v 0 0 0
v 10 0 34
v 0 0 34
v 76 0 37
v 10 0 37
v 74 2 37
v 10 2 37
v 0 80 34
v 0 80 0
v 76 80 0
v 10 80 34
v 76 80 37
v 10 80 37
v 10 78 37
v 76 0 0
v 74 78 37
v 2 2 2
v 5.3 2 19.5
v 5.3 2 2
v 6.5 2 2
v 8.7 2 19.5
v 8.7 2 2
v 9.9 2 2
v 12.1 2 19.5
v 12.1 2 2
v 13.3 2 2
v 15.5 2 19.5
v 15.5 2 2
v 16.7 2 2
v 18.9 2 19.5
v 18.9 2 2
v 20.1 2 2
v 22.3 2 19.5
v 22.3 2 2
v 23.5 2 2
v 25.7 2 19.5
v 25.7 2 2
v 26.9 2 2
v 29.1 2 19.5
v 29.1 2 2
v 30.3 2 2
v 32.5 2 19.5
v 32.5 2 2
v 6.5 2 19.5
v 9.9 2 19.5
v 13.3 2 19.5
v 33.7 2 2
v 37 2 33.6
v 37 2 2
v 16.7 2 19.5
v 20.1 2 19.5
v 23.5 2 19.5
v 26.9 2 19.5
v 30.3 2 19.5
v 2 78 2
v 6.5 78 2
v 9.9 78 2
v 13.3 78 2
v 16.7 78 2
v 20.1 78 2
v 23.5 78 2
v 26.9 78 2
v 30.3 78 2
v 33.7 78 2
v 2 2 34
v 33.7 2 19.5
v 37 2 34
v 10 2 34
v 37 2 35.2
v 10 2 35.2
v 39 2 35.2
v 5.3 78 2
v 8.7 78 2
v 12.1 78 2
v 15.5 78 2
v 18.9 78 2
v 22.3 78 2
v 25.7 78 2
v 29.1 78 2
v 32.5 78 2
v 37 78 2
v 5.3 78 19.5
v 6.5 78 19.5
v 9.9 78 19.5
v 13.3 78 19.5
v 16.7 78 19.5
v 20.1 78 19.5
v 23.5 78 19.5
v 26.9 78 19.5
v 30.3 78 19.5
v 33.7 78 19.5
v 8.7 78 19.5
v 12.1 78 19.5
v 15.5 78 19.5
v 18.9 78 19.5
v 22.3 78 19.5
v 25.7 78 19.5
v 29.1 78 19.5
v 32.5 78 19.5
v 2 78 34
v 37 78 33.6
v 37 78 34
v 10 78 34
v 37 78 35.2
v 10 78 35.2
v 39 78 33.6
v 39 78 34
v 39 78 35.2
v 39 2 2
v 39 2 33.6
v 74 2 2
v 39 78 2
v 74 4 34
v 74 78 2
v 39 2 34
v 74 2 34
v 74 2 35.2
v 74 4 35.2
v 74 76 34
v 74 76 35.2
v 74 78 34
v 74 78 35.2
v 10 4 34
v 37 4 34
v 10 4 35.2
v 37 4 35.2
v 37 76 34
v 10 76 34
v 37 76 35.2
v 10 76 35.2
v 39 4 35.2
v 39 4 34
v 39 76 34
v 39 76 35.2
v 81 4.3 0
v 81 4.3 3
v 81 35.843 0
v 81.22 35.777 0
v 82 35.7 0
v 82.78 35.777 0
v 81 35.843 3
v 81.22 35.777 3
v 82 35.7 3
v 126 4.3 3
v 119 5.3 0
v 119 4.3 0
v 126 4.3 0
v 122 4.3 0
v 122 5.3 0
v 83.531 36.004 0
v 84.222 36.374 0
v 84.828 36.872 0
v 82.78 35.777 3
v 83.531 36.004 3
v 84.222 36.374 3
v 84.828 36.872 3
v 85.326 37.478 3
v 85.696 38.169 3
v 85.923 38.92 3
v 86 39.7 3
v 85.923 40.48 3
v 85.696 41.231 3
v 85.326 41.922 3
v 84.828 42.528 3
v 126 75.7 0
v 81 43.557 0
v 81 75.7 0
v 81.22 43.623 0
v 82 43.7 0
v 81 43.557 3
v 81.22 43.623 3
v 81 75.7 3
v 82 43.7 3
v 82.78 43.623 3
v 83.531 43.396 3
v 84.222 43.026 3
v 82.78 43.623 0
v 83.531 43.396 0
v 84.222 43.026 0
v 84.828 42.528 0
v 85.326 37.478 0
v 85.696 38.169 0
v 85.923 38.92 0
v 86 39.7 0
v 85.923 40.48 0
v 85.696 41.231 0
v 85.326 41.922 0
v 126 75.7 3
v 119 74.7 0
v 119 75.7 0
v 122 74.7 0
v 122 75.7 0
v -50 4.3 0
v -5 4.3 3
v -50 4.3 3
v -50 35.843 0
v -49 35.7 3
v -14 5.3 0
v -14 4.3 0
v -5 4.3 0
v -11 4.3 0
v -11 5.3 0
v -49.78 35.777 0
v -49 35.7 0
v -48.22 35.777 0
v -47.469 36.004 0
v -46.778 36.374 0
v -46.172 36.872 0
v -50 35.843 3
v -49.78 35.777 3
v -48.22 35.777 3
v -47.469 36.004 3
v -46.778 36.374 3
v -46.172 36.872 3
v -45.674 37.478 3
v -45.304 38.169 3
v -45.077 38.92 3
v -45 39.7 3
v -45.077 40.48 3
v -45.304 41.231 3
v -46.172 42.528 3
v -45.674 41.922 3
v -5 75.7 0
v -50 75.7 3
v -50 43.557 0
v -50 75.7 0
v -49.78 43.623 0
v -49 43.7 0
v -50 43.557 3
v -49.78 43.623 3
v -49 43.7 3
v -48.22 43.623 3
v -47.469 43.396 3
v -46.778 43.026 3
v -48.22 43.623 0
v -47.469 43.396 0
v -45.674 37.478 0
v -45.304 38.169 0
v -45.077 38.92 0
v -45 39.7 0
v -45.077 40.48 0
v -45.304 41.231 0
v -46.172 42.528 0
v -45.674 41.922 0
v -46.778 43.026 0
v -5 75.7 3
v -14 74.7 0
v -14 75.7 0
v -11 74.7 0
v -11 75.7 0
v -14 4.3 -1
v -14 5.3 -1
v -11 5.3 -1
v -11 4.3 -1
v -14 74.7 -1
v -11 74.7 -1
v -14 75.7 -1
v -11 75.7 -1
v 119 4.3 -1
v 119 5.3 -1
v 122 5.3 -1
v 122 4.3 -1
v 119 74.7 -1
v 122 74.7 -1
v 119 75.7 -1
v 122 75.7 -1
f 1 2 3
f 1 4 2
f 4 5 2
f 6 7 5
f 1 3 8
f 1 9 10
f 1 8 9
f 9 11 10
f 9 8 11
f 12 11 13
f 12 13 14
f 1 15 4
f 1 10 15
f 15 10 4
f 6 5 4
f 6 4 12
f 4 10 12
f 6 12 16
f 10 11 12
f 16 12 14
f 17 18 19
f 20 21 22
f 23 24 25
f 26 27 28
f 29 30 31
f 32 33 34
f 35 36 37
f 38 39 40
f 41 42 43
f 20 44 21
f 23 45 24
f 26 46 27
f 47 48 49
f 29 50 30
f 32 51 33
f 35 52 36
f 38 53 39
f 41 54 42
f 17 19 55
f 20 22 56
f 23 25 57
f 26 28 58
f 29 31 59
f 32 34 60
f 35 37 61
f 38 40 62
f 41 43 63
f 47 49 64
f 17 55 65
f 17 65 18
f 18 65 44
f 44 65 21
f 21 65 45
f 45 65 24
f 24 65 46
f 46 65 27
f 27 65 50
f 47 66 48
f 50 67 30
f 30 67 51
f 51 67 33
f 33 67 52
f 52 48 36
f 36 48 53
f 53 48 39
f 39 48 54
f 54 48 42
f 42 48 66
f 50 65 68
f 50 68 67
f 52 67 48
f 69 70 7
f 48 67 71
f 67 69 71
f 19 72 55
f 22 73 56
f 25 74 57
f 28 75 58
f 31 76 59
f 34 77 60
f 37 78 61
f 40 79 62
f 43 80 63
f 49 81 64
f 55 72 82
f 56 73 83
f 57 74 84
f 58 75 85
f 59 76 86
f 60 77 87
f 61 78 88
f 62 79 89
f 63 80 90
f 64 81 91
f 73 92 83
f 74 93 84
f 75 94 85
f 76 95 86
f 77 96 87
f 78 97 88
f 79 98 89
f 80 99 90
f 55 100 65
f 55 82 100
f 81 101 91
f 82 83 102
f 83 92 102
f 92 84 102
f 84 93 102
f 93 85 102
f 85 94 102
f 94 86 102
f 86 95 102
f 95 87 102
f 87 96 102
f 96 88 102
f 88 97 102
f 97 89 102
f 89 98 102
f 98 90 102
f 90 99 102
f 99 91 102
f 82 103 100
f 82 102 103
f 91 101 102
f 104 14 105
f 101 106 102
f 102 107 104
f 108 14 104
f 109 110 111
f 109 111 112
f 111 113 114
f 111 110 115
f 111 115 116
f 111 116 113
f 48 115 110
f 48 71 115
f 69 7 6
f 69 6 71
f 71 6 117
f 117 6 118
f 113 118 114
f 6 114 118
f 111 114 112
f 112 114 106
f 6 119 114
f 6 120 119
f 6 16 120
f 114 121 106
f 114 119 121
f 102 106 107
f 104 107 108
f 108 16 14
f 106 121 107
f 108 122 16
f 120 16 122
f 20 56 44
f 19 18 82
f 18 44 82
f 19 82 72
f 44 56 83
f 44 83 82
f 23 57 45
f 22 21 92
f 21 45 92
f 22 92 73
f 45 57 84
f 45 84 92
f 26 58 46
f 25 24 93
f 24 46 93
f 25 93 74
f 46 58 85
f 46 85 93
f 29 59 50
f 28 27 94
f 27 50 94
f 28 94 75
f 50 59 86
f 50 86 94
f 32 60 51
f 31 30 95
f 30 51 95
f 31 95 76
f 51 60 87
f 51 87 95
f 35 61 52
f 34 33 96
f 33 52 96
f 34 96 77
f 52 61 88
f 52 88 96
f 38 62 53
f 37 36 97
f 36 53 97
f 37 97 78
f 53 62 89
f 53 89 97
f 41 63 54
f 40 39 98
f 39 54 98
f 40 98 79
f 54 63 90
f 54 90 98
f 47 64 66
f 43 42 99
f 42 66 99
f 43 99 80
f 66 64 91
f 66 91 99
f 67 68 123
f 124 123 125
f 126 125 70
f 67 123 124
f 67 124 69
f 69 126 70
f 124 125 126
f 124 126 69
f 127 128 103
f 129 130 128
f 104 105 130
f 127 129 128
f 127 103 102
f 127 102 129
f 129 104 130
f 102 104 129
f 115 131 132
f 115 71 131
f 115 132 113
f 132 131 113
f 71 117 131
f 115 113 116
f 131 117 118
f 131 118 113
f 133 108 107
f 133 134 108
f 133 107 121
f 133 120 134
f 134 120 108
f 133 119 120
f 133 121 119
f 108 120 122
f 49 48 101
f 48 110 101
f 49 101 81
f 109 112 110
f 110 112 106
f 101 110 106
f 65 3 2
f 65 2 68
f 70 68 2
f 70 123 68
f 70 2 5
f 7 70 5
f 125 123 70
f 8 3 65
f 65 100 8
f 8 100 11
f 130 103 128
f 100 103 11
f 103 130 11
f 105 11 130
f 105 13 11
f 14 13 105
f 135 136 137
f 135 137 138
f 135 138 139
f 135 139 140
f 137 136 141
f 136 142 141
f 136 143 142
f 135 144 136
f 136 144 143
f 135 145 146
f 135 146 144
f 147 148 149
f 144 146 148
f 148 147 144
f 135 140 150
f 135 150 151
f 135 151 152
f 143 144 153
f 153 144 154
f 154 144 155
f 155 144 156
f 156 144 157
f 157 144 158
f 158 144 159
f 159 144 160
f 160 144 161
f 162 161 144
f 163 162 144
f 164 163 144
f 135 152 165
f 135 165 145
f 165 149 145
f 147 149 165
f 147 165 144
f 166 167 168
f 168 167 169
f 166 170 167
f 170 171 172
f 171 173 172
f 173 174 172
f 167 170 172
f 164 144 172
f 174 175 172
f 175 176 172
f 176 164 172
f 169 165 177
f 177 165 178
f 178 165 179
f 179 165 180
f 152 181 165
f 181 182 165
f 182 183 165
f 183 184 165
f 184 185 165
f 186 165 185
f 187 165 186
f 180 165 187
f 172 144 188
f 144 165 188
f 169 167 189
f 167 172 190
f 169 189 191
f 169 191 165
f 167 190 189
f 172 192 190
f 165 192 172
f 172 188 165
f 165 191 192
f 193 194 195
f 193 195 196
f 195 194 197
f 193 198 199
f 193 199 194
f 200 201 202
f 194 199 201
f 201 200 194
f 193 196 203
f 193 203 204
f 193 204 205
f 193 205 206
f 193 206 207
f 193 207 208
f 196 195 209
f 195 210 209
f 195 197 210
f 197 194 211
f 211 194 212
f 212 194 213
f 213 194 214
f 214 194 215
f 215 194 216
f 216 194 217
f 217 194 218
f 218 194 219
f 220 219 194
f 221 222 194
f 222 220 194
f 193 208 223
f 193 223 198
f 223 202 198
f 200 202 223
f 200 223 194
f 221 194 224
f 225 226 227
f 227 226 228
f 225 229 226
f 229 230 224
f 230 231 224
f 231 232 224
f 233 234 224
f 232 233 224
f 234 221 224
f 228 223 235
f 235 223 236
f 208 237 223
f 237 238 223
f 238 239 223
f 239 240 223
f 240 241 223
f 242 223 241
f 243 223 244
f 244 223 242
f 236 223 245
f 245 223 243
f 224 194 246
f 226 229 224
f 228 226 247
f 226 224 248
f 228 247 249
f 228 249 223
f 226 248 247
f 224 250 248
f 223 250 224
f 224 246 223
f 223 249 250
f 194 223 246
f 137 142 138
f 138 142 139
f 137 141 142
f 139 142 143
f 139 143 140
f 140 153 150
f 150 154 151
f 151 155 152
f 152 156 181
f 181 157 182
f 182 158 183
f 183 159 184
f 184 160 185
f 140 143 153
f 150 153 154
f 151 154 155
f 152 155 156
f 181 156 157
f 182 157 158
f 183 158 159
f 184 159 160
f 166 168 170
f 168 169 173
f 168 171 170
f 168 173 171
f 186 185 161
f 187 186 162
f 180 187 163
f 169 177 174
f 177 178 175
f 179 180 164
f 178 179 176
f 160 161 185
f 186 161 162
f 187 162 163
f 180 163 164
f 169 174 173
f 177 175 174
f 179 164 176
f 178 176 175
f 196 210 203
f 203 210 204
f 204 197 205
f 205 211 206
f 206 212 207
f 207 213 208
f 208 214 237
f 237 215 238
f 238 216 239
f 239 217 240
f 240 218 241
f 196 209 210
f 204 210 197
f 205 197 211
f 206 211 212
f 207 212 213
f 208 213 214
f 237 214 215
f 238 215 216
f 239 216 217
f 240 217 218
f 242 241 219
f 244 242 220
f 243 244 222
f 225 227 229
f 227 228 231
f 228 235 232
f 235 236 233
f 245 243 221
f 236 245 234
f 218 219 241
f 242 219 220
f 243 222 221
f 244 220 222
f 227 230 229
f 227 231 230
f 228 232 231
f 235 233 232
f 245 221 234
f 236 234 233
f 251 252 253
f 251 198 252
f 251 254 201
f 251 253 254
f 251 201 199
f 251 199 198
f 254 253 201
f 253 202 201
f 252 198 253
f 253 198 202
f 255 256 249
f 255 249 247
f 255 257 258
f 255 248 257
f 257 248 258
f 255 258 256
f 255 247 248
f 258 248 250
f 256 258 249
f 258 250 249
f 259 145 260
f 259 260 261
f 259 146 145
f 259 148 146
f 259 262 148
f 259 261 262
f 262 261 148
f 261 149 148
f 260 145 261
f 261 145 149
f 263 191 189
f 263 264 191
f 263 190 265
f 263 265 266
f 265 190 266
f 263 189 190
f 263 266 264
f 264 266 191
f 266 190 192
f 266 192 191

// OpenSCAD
// Guitar Pick Case – side-by-side compartments
// Left: vertical pick slots with half-height dividers
// Right: bulk storage
// Two sliding lids with rails, finger dents,
// and downward retention bumps on lids

//--------------------------------------------------
// Main parameters
//--------------------------------------------------
wall_th       = 2;
floor_th      = 2;

inner_x_comp  = 35;      // interior X of each compartment
inner_z       = 35;      // interior Z (height)

case_w        = 80;      // overall Y
inner_w       = case_w - 2*wall_th;
base_h        = floor_th + inner_z;

lid_th        = 3;

// vertical pick slots (left compartment)
pick_slot_count = 10;
pick_slot_gap   = 2.2;   // free width for a pick on edge
pick_div_th     = 1.2;   // divider thickness

// sliding rails + clearances
rail_w       = 2;        // rail width in Y
rail_h       = 1.2;      // rail height inside lid slot (<= lid_th)
lid_clear_xy = 0.3;
mouth_len    = 10;       // open front length for sliding lids

// finger dent in lids
dent_r       = 4;

// lid retention bumps (downwards)
bump_len     = 3;        // along X
bump_w_y     = 1.0;      // along Y
bump_h       = 1.0;      // downward height (negative Z)

// center wall height: below lid slot so lids pass over it
center_wall_top = base_h - lid_th - 0.4;  // 0.4 mm clearance

//--------------------------------------------------
// X layout
//--------------------------------------------------
x_left_in0      = wall_th;
x_left_in1      = x_left_in0 + inner_x_comp;

x_center_wall0  = x_left_in1;
x_center_wall1  = x_center_wall0 + wall_th;

x_right_in0     = x_center_wall1;
x_right_in1     = x_right_in0 + inner_x_comp;

case_len        = x_right_in1 + wall_th;

//--------------------------------------------------
// Outer shell (no center wall yet)
//--------------------------------------------------
module shell_without_center() {
    difference() {
        // outer box
        cube([case_len, case_w, base_h]);

        // interior cavity for both compartments
        translate([wall_th, wall_th, floor_th])
            cube([case_len - 2*wall_th,
                  inner_w,
                  inner_z]);
    }
}

//--------------------------------------------------
// Center wall (shorter so lids pass over it)
//--------------------------------------------------
module center_wall() {
    translate([x_center_wall0, wall_th, floor_th])
        cube([wall_th, inner_w, center_wall_top - floor_th]);
}

//--------------------------------------------------
// Half-height vertical pick dividers (left compartment)
//--------------------------------------------------
module pick_vertical_dividers() {
    n       = pick_slot_count;
    gap_w   = pick_slot_gap;
    div_th  = pick_div_th;
    div_h   = inner_z / 2;

    total_len = n*gap_w + (n-1)*div_th;
    margin    = (inner_x_comp - total_len) / 2;
    x_start   = x_left_in0 + margin;

    for (i = [0 : n-2]) {
        x_div = x_start + gap_w*(i+1) + div_th*i;
        translate([x_div, wall_th, floor_th])
            cube([div_th, inner_w, div_h]);
    }
}

//--------------------------------------------------
// Sliding-lid rails (no bumps on rails)
//--------------------------------------------------
module lid_rails() {
    // bottom of lid slot
    z_slot_bottom = base_h - lid_th;

    // LEFT rails
    translate([x_left_in0, wall_th, z_slot_bottom])
        cube([inner_x_comp, rail_w, rail_h]); // front rail
    translate([x_left_in0, case_w - wall_th - rail_w, z_slot_bottom])
        cube([inner_x_comp, rail_w, rail_h]); // back rail

    // RIGHT rails
    translate([x_right_in0, wall_th, z_slot_bottom])
        cube([inner_x_comp, rail_w, rail_h]);
    translate([x_right_in0, case_w - wall_th - rail_w, z_slot_bottom])
        cube([inner_x_comp, rail_w, rail_h]);
}

//--------------------------------------------------
// Mouth cut – ONLY the lid slot region at the front
//--------------------------------------------------
module mouth_cut() {
    z_slot_bottom = base_h - lid_th;
    translate([0, 0, z_slot_bottom])
        cube([mouth_len, case_w, lid_th]);  // open slot for lids to slide
}

//--------------------------------------------------
// Base Assembly
//--------------------------------------------------
module base() {
    difference() {
        union() {
            shell_without_center();
            center_wall();
            pick_vertical_dividers();
            lid_rails();
        }
        mouth_cut();
    }
}

//--------------------------------------------------
// Lids – with finger dents and downward bumps
//--------------------------------------------------
module left_lid() {
    lid_len_x = inner_x_comp + mouth_len;
    lid_len_y = inner_w - 2*rail_w - 2*lid_clear_xy;
    y0        = wall_th + rail_w + lid_clear_xy;

    // X position where bumps should end up “behind” the back outer wall
    // Back inner wall for left compartment is at x = wall_th + inner_x_comp.
    // Put bump slightly further into the box.
    x_bump    = wall_th + inner_x_comp + 0.5;

    // place on print bed at origin
    // move to the side for printing
    translate([- lid_len_x - 5, 0, 0])
    union() {
        // plate with finger dent
        difference() {
            translate([0, y0, 0])
                cube([lid_len_x, lid_len_y, lid_th]);

            // finger dent at front
            translate([-dent_r + mouth_len/2,
                       wall_th + inner_w/2 - lid_clear_xy,
                       -0.01])
                cylinder(r=dent_r, h=lid_th + 0.02, $fn=32);
        }

        // two downward bumps (front & back edges in Y)
        translate([x_bump - bump_len/2, y0, -bump_h])
            cube([bump_len, bump_w_y, bump_h]);  // near front rail

        translate([x_bump - bump_len/2, y0 + lid_len_y - bump_w_y, -bump_h])
            cube([bump_len, bump_w_y, bump_h]);  // near back rail
    }
}

module right_lid() {
    lid_len_x = inner_x_comp + mouth_len;
    lid_len_y = inner_w - 2*rail_w - 2*lid_clear_xy;
    y0        = wall_th + rail_w + lid_clear_xy;

    // For right lid: bump should click behind the center divider.
    // Center divider right face at x = x_center_wall1.
    x_bump    = x_center_wall1 + 0.5;

    // move to the side for printing
    translate([case_len + 5, 0, 0])
    union() {
        // plate with finger dent
        difference() {
            translate([0, y0, 0])
                cube([lid_len_x, lid_len_y, lid_th]);

            // finger dent
            translate([-dent_r + mouth_len/2,
                       wall_th + inner_w/2 - lid_clear_xy,
                       -0.01])
                cylinder(r=dent_r, h=lid_th + 0.02, $fn=32);
        }

        // downward bumps, front & back
        translate([x_bump - bump_len/2, y0, -bump_h])
            cube([bump_len, bump_w_y, bump_h]);

        translate([x_bump - bump_len/2, y0 + lid_len_y - bump_w_y, -bump_h])
            cube([bump_len, bump_w_y, bump_h]);
    }
}

//--------------------------------------------------
// Final Layout
//--------------------------------------------------
base();
left_lid();
right_lid();
